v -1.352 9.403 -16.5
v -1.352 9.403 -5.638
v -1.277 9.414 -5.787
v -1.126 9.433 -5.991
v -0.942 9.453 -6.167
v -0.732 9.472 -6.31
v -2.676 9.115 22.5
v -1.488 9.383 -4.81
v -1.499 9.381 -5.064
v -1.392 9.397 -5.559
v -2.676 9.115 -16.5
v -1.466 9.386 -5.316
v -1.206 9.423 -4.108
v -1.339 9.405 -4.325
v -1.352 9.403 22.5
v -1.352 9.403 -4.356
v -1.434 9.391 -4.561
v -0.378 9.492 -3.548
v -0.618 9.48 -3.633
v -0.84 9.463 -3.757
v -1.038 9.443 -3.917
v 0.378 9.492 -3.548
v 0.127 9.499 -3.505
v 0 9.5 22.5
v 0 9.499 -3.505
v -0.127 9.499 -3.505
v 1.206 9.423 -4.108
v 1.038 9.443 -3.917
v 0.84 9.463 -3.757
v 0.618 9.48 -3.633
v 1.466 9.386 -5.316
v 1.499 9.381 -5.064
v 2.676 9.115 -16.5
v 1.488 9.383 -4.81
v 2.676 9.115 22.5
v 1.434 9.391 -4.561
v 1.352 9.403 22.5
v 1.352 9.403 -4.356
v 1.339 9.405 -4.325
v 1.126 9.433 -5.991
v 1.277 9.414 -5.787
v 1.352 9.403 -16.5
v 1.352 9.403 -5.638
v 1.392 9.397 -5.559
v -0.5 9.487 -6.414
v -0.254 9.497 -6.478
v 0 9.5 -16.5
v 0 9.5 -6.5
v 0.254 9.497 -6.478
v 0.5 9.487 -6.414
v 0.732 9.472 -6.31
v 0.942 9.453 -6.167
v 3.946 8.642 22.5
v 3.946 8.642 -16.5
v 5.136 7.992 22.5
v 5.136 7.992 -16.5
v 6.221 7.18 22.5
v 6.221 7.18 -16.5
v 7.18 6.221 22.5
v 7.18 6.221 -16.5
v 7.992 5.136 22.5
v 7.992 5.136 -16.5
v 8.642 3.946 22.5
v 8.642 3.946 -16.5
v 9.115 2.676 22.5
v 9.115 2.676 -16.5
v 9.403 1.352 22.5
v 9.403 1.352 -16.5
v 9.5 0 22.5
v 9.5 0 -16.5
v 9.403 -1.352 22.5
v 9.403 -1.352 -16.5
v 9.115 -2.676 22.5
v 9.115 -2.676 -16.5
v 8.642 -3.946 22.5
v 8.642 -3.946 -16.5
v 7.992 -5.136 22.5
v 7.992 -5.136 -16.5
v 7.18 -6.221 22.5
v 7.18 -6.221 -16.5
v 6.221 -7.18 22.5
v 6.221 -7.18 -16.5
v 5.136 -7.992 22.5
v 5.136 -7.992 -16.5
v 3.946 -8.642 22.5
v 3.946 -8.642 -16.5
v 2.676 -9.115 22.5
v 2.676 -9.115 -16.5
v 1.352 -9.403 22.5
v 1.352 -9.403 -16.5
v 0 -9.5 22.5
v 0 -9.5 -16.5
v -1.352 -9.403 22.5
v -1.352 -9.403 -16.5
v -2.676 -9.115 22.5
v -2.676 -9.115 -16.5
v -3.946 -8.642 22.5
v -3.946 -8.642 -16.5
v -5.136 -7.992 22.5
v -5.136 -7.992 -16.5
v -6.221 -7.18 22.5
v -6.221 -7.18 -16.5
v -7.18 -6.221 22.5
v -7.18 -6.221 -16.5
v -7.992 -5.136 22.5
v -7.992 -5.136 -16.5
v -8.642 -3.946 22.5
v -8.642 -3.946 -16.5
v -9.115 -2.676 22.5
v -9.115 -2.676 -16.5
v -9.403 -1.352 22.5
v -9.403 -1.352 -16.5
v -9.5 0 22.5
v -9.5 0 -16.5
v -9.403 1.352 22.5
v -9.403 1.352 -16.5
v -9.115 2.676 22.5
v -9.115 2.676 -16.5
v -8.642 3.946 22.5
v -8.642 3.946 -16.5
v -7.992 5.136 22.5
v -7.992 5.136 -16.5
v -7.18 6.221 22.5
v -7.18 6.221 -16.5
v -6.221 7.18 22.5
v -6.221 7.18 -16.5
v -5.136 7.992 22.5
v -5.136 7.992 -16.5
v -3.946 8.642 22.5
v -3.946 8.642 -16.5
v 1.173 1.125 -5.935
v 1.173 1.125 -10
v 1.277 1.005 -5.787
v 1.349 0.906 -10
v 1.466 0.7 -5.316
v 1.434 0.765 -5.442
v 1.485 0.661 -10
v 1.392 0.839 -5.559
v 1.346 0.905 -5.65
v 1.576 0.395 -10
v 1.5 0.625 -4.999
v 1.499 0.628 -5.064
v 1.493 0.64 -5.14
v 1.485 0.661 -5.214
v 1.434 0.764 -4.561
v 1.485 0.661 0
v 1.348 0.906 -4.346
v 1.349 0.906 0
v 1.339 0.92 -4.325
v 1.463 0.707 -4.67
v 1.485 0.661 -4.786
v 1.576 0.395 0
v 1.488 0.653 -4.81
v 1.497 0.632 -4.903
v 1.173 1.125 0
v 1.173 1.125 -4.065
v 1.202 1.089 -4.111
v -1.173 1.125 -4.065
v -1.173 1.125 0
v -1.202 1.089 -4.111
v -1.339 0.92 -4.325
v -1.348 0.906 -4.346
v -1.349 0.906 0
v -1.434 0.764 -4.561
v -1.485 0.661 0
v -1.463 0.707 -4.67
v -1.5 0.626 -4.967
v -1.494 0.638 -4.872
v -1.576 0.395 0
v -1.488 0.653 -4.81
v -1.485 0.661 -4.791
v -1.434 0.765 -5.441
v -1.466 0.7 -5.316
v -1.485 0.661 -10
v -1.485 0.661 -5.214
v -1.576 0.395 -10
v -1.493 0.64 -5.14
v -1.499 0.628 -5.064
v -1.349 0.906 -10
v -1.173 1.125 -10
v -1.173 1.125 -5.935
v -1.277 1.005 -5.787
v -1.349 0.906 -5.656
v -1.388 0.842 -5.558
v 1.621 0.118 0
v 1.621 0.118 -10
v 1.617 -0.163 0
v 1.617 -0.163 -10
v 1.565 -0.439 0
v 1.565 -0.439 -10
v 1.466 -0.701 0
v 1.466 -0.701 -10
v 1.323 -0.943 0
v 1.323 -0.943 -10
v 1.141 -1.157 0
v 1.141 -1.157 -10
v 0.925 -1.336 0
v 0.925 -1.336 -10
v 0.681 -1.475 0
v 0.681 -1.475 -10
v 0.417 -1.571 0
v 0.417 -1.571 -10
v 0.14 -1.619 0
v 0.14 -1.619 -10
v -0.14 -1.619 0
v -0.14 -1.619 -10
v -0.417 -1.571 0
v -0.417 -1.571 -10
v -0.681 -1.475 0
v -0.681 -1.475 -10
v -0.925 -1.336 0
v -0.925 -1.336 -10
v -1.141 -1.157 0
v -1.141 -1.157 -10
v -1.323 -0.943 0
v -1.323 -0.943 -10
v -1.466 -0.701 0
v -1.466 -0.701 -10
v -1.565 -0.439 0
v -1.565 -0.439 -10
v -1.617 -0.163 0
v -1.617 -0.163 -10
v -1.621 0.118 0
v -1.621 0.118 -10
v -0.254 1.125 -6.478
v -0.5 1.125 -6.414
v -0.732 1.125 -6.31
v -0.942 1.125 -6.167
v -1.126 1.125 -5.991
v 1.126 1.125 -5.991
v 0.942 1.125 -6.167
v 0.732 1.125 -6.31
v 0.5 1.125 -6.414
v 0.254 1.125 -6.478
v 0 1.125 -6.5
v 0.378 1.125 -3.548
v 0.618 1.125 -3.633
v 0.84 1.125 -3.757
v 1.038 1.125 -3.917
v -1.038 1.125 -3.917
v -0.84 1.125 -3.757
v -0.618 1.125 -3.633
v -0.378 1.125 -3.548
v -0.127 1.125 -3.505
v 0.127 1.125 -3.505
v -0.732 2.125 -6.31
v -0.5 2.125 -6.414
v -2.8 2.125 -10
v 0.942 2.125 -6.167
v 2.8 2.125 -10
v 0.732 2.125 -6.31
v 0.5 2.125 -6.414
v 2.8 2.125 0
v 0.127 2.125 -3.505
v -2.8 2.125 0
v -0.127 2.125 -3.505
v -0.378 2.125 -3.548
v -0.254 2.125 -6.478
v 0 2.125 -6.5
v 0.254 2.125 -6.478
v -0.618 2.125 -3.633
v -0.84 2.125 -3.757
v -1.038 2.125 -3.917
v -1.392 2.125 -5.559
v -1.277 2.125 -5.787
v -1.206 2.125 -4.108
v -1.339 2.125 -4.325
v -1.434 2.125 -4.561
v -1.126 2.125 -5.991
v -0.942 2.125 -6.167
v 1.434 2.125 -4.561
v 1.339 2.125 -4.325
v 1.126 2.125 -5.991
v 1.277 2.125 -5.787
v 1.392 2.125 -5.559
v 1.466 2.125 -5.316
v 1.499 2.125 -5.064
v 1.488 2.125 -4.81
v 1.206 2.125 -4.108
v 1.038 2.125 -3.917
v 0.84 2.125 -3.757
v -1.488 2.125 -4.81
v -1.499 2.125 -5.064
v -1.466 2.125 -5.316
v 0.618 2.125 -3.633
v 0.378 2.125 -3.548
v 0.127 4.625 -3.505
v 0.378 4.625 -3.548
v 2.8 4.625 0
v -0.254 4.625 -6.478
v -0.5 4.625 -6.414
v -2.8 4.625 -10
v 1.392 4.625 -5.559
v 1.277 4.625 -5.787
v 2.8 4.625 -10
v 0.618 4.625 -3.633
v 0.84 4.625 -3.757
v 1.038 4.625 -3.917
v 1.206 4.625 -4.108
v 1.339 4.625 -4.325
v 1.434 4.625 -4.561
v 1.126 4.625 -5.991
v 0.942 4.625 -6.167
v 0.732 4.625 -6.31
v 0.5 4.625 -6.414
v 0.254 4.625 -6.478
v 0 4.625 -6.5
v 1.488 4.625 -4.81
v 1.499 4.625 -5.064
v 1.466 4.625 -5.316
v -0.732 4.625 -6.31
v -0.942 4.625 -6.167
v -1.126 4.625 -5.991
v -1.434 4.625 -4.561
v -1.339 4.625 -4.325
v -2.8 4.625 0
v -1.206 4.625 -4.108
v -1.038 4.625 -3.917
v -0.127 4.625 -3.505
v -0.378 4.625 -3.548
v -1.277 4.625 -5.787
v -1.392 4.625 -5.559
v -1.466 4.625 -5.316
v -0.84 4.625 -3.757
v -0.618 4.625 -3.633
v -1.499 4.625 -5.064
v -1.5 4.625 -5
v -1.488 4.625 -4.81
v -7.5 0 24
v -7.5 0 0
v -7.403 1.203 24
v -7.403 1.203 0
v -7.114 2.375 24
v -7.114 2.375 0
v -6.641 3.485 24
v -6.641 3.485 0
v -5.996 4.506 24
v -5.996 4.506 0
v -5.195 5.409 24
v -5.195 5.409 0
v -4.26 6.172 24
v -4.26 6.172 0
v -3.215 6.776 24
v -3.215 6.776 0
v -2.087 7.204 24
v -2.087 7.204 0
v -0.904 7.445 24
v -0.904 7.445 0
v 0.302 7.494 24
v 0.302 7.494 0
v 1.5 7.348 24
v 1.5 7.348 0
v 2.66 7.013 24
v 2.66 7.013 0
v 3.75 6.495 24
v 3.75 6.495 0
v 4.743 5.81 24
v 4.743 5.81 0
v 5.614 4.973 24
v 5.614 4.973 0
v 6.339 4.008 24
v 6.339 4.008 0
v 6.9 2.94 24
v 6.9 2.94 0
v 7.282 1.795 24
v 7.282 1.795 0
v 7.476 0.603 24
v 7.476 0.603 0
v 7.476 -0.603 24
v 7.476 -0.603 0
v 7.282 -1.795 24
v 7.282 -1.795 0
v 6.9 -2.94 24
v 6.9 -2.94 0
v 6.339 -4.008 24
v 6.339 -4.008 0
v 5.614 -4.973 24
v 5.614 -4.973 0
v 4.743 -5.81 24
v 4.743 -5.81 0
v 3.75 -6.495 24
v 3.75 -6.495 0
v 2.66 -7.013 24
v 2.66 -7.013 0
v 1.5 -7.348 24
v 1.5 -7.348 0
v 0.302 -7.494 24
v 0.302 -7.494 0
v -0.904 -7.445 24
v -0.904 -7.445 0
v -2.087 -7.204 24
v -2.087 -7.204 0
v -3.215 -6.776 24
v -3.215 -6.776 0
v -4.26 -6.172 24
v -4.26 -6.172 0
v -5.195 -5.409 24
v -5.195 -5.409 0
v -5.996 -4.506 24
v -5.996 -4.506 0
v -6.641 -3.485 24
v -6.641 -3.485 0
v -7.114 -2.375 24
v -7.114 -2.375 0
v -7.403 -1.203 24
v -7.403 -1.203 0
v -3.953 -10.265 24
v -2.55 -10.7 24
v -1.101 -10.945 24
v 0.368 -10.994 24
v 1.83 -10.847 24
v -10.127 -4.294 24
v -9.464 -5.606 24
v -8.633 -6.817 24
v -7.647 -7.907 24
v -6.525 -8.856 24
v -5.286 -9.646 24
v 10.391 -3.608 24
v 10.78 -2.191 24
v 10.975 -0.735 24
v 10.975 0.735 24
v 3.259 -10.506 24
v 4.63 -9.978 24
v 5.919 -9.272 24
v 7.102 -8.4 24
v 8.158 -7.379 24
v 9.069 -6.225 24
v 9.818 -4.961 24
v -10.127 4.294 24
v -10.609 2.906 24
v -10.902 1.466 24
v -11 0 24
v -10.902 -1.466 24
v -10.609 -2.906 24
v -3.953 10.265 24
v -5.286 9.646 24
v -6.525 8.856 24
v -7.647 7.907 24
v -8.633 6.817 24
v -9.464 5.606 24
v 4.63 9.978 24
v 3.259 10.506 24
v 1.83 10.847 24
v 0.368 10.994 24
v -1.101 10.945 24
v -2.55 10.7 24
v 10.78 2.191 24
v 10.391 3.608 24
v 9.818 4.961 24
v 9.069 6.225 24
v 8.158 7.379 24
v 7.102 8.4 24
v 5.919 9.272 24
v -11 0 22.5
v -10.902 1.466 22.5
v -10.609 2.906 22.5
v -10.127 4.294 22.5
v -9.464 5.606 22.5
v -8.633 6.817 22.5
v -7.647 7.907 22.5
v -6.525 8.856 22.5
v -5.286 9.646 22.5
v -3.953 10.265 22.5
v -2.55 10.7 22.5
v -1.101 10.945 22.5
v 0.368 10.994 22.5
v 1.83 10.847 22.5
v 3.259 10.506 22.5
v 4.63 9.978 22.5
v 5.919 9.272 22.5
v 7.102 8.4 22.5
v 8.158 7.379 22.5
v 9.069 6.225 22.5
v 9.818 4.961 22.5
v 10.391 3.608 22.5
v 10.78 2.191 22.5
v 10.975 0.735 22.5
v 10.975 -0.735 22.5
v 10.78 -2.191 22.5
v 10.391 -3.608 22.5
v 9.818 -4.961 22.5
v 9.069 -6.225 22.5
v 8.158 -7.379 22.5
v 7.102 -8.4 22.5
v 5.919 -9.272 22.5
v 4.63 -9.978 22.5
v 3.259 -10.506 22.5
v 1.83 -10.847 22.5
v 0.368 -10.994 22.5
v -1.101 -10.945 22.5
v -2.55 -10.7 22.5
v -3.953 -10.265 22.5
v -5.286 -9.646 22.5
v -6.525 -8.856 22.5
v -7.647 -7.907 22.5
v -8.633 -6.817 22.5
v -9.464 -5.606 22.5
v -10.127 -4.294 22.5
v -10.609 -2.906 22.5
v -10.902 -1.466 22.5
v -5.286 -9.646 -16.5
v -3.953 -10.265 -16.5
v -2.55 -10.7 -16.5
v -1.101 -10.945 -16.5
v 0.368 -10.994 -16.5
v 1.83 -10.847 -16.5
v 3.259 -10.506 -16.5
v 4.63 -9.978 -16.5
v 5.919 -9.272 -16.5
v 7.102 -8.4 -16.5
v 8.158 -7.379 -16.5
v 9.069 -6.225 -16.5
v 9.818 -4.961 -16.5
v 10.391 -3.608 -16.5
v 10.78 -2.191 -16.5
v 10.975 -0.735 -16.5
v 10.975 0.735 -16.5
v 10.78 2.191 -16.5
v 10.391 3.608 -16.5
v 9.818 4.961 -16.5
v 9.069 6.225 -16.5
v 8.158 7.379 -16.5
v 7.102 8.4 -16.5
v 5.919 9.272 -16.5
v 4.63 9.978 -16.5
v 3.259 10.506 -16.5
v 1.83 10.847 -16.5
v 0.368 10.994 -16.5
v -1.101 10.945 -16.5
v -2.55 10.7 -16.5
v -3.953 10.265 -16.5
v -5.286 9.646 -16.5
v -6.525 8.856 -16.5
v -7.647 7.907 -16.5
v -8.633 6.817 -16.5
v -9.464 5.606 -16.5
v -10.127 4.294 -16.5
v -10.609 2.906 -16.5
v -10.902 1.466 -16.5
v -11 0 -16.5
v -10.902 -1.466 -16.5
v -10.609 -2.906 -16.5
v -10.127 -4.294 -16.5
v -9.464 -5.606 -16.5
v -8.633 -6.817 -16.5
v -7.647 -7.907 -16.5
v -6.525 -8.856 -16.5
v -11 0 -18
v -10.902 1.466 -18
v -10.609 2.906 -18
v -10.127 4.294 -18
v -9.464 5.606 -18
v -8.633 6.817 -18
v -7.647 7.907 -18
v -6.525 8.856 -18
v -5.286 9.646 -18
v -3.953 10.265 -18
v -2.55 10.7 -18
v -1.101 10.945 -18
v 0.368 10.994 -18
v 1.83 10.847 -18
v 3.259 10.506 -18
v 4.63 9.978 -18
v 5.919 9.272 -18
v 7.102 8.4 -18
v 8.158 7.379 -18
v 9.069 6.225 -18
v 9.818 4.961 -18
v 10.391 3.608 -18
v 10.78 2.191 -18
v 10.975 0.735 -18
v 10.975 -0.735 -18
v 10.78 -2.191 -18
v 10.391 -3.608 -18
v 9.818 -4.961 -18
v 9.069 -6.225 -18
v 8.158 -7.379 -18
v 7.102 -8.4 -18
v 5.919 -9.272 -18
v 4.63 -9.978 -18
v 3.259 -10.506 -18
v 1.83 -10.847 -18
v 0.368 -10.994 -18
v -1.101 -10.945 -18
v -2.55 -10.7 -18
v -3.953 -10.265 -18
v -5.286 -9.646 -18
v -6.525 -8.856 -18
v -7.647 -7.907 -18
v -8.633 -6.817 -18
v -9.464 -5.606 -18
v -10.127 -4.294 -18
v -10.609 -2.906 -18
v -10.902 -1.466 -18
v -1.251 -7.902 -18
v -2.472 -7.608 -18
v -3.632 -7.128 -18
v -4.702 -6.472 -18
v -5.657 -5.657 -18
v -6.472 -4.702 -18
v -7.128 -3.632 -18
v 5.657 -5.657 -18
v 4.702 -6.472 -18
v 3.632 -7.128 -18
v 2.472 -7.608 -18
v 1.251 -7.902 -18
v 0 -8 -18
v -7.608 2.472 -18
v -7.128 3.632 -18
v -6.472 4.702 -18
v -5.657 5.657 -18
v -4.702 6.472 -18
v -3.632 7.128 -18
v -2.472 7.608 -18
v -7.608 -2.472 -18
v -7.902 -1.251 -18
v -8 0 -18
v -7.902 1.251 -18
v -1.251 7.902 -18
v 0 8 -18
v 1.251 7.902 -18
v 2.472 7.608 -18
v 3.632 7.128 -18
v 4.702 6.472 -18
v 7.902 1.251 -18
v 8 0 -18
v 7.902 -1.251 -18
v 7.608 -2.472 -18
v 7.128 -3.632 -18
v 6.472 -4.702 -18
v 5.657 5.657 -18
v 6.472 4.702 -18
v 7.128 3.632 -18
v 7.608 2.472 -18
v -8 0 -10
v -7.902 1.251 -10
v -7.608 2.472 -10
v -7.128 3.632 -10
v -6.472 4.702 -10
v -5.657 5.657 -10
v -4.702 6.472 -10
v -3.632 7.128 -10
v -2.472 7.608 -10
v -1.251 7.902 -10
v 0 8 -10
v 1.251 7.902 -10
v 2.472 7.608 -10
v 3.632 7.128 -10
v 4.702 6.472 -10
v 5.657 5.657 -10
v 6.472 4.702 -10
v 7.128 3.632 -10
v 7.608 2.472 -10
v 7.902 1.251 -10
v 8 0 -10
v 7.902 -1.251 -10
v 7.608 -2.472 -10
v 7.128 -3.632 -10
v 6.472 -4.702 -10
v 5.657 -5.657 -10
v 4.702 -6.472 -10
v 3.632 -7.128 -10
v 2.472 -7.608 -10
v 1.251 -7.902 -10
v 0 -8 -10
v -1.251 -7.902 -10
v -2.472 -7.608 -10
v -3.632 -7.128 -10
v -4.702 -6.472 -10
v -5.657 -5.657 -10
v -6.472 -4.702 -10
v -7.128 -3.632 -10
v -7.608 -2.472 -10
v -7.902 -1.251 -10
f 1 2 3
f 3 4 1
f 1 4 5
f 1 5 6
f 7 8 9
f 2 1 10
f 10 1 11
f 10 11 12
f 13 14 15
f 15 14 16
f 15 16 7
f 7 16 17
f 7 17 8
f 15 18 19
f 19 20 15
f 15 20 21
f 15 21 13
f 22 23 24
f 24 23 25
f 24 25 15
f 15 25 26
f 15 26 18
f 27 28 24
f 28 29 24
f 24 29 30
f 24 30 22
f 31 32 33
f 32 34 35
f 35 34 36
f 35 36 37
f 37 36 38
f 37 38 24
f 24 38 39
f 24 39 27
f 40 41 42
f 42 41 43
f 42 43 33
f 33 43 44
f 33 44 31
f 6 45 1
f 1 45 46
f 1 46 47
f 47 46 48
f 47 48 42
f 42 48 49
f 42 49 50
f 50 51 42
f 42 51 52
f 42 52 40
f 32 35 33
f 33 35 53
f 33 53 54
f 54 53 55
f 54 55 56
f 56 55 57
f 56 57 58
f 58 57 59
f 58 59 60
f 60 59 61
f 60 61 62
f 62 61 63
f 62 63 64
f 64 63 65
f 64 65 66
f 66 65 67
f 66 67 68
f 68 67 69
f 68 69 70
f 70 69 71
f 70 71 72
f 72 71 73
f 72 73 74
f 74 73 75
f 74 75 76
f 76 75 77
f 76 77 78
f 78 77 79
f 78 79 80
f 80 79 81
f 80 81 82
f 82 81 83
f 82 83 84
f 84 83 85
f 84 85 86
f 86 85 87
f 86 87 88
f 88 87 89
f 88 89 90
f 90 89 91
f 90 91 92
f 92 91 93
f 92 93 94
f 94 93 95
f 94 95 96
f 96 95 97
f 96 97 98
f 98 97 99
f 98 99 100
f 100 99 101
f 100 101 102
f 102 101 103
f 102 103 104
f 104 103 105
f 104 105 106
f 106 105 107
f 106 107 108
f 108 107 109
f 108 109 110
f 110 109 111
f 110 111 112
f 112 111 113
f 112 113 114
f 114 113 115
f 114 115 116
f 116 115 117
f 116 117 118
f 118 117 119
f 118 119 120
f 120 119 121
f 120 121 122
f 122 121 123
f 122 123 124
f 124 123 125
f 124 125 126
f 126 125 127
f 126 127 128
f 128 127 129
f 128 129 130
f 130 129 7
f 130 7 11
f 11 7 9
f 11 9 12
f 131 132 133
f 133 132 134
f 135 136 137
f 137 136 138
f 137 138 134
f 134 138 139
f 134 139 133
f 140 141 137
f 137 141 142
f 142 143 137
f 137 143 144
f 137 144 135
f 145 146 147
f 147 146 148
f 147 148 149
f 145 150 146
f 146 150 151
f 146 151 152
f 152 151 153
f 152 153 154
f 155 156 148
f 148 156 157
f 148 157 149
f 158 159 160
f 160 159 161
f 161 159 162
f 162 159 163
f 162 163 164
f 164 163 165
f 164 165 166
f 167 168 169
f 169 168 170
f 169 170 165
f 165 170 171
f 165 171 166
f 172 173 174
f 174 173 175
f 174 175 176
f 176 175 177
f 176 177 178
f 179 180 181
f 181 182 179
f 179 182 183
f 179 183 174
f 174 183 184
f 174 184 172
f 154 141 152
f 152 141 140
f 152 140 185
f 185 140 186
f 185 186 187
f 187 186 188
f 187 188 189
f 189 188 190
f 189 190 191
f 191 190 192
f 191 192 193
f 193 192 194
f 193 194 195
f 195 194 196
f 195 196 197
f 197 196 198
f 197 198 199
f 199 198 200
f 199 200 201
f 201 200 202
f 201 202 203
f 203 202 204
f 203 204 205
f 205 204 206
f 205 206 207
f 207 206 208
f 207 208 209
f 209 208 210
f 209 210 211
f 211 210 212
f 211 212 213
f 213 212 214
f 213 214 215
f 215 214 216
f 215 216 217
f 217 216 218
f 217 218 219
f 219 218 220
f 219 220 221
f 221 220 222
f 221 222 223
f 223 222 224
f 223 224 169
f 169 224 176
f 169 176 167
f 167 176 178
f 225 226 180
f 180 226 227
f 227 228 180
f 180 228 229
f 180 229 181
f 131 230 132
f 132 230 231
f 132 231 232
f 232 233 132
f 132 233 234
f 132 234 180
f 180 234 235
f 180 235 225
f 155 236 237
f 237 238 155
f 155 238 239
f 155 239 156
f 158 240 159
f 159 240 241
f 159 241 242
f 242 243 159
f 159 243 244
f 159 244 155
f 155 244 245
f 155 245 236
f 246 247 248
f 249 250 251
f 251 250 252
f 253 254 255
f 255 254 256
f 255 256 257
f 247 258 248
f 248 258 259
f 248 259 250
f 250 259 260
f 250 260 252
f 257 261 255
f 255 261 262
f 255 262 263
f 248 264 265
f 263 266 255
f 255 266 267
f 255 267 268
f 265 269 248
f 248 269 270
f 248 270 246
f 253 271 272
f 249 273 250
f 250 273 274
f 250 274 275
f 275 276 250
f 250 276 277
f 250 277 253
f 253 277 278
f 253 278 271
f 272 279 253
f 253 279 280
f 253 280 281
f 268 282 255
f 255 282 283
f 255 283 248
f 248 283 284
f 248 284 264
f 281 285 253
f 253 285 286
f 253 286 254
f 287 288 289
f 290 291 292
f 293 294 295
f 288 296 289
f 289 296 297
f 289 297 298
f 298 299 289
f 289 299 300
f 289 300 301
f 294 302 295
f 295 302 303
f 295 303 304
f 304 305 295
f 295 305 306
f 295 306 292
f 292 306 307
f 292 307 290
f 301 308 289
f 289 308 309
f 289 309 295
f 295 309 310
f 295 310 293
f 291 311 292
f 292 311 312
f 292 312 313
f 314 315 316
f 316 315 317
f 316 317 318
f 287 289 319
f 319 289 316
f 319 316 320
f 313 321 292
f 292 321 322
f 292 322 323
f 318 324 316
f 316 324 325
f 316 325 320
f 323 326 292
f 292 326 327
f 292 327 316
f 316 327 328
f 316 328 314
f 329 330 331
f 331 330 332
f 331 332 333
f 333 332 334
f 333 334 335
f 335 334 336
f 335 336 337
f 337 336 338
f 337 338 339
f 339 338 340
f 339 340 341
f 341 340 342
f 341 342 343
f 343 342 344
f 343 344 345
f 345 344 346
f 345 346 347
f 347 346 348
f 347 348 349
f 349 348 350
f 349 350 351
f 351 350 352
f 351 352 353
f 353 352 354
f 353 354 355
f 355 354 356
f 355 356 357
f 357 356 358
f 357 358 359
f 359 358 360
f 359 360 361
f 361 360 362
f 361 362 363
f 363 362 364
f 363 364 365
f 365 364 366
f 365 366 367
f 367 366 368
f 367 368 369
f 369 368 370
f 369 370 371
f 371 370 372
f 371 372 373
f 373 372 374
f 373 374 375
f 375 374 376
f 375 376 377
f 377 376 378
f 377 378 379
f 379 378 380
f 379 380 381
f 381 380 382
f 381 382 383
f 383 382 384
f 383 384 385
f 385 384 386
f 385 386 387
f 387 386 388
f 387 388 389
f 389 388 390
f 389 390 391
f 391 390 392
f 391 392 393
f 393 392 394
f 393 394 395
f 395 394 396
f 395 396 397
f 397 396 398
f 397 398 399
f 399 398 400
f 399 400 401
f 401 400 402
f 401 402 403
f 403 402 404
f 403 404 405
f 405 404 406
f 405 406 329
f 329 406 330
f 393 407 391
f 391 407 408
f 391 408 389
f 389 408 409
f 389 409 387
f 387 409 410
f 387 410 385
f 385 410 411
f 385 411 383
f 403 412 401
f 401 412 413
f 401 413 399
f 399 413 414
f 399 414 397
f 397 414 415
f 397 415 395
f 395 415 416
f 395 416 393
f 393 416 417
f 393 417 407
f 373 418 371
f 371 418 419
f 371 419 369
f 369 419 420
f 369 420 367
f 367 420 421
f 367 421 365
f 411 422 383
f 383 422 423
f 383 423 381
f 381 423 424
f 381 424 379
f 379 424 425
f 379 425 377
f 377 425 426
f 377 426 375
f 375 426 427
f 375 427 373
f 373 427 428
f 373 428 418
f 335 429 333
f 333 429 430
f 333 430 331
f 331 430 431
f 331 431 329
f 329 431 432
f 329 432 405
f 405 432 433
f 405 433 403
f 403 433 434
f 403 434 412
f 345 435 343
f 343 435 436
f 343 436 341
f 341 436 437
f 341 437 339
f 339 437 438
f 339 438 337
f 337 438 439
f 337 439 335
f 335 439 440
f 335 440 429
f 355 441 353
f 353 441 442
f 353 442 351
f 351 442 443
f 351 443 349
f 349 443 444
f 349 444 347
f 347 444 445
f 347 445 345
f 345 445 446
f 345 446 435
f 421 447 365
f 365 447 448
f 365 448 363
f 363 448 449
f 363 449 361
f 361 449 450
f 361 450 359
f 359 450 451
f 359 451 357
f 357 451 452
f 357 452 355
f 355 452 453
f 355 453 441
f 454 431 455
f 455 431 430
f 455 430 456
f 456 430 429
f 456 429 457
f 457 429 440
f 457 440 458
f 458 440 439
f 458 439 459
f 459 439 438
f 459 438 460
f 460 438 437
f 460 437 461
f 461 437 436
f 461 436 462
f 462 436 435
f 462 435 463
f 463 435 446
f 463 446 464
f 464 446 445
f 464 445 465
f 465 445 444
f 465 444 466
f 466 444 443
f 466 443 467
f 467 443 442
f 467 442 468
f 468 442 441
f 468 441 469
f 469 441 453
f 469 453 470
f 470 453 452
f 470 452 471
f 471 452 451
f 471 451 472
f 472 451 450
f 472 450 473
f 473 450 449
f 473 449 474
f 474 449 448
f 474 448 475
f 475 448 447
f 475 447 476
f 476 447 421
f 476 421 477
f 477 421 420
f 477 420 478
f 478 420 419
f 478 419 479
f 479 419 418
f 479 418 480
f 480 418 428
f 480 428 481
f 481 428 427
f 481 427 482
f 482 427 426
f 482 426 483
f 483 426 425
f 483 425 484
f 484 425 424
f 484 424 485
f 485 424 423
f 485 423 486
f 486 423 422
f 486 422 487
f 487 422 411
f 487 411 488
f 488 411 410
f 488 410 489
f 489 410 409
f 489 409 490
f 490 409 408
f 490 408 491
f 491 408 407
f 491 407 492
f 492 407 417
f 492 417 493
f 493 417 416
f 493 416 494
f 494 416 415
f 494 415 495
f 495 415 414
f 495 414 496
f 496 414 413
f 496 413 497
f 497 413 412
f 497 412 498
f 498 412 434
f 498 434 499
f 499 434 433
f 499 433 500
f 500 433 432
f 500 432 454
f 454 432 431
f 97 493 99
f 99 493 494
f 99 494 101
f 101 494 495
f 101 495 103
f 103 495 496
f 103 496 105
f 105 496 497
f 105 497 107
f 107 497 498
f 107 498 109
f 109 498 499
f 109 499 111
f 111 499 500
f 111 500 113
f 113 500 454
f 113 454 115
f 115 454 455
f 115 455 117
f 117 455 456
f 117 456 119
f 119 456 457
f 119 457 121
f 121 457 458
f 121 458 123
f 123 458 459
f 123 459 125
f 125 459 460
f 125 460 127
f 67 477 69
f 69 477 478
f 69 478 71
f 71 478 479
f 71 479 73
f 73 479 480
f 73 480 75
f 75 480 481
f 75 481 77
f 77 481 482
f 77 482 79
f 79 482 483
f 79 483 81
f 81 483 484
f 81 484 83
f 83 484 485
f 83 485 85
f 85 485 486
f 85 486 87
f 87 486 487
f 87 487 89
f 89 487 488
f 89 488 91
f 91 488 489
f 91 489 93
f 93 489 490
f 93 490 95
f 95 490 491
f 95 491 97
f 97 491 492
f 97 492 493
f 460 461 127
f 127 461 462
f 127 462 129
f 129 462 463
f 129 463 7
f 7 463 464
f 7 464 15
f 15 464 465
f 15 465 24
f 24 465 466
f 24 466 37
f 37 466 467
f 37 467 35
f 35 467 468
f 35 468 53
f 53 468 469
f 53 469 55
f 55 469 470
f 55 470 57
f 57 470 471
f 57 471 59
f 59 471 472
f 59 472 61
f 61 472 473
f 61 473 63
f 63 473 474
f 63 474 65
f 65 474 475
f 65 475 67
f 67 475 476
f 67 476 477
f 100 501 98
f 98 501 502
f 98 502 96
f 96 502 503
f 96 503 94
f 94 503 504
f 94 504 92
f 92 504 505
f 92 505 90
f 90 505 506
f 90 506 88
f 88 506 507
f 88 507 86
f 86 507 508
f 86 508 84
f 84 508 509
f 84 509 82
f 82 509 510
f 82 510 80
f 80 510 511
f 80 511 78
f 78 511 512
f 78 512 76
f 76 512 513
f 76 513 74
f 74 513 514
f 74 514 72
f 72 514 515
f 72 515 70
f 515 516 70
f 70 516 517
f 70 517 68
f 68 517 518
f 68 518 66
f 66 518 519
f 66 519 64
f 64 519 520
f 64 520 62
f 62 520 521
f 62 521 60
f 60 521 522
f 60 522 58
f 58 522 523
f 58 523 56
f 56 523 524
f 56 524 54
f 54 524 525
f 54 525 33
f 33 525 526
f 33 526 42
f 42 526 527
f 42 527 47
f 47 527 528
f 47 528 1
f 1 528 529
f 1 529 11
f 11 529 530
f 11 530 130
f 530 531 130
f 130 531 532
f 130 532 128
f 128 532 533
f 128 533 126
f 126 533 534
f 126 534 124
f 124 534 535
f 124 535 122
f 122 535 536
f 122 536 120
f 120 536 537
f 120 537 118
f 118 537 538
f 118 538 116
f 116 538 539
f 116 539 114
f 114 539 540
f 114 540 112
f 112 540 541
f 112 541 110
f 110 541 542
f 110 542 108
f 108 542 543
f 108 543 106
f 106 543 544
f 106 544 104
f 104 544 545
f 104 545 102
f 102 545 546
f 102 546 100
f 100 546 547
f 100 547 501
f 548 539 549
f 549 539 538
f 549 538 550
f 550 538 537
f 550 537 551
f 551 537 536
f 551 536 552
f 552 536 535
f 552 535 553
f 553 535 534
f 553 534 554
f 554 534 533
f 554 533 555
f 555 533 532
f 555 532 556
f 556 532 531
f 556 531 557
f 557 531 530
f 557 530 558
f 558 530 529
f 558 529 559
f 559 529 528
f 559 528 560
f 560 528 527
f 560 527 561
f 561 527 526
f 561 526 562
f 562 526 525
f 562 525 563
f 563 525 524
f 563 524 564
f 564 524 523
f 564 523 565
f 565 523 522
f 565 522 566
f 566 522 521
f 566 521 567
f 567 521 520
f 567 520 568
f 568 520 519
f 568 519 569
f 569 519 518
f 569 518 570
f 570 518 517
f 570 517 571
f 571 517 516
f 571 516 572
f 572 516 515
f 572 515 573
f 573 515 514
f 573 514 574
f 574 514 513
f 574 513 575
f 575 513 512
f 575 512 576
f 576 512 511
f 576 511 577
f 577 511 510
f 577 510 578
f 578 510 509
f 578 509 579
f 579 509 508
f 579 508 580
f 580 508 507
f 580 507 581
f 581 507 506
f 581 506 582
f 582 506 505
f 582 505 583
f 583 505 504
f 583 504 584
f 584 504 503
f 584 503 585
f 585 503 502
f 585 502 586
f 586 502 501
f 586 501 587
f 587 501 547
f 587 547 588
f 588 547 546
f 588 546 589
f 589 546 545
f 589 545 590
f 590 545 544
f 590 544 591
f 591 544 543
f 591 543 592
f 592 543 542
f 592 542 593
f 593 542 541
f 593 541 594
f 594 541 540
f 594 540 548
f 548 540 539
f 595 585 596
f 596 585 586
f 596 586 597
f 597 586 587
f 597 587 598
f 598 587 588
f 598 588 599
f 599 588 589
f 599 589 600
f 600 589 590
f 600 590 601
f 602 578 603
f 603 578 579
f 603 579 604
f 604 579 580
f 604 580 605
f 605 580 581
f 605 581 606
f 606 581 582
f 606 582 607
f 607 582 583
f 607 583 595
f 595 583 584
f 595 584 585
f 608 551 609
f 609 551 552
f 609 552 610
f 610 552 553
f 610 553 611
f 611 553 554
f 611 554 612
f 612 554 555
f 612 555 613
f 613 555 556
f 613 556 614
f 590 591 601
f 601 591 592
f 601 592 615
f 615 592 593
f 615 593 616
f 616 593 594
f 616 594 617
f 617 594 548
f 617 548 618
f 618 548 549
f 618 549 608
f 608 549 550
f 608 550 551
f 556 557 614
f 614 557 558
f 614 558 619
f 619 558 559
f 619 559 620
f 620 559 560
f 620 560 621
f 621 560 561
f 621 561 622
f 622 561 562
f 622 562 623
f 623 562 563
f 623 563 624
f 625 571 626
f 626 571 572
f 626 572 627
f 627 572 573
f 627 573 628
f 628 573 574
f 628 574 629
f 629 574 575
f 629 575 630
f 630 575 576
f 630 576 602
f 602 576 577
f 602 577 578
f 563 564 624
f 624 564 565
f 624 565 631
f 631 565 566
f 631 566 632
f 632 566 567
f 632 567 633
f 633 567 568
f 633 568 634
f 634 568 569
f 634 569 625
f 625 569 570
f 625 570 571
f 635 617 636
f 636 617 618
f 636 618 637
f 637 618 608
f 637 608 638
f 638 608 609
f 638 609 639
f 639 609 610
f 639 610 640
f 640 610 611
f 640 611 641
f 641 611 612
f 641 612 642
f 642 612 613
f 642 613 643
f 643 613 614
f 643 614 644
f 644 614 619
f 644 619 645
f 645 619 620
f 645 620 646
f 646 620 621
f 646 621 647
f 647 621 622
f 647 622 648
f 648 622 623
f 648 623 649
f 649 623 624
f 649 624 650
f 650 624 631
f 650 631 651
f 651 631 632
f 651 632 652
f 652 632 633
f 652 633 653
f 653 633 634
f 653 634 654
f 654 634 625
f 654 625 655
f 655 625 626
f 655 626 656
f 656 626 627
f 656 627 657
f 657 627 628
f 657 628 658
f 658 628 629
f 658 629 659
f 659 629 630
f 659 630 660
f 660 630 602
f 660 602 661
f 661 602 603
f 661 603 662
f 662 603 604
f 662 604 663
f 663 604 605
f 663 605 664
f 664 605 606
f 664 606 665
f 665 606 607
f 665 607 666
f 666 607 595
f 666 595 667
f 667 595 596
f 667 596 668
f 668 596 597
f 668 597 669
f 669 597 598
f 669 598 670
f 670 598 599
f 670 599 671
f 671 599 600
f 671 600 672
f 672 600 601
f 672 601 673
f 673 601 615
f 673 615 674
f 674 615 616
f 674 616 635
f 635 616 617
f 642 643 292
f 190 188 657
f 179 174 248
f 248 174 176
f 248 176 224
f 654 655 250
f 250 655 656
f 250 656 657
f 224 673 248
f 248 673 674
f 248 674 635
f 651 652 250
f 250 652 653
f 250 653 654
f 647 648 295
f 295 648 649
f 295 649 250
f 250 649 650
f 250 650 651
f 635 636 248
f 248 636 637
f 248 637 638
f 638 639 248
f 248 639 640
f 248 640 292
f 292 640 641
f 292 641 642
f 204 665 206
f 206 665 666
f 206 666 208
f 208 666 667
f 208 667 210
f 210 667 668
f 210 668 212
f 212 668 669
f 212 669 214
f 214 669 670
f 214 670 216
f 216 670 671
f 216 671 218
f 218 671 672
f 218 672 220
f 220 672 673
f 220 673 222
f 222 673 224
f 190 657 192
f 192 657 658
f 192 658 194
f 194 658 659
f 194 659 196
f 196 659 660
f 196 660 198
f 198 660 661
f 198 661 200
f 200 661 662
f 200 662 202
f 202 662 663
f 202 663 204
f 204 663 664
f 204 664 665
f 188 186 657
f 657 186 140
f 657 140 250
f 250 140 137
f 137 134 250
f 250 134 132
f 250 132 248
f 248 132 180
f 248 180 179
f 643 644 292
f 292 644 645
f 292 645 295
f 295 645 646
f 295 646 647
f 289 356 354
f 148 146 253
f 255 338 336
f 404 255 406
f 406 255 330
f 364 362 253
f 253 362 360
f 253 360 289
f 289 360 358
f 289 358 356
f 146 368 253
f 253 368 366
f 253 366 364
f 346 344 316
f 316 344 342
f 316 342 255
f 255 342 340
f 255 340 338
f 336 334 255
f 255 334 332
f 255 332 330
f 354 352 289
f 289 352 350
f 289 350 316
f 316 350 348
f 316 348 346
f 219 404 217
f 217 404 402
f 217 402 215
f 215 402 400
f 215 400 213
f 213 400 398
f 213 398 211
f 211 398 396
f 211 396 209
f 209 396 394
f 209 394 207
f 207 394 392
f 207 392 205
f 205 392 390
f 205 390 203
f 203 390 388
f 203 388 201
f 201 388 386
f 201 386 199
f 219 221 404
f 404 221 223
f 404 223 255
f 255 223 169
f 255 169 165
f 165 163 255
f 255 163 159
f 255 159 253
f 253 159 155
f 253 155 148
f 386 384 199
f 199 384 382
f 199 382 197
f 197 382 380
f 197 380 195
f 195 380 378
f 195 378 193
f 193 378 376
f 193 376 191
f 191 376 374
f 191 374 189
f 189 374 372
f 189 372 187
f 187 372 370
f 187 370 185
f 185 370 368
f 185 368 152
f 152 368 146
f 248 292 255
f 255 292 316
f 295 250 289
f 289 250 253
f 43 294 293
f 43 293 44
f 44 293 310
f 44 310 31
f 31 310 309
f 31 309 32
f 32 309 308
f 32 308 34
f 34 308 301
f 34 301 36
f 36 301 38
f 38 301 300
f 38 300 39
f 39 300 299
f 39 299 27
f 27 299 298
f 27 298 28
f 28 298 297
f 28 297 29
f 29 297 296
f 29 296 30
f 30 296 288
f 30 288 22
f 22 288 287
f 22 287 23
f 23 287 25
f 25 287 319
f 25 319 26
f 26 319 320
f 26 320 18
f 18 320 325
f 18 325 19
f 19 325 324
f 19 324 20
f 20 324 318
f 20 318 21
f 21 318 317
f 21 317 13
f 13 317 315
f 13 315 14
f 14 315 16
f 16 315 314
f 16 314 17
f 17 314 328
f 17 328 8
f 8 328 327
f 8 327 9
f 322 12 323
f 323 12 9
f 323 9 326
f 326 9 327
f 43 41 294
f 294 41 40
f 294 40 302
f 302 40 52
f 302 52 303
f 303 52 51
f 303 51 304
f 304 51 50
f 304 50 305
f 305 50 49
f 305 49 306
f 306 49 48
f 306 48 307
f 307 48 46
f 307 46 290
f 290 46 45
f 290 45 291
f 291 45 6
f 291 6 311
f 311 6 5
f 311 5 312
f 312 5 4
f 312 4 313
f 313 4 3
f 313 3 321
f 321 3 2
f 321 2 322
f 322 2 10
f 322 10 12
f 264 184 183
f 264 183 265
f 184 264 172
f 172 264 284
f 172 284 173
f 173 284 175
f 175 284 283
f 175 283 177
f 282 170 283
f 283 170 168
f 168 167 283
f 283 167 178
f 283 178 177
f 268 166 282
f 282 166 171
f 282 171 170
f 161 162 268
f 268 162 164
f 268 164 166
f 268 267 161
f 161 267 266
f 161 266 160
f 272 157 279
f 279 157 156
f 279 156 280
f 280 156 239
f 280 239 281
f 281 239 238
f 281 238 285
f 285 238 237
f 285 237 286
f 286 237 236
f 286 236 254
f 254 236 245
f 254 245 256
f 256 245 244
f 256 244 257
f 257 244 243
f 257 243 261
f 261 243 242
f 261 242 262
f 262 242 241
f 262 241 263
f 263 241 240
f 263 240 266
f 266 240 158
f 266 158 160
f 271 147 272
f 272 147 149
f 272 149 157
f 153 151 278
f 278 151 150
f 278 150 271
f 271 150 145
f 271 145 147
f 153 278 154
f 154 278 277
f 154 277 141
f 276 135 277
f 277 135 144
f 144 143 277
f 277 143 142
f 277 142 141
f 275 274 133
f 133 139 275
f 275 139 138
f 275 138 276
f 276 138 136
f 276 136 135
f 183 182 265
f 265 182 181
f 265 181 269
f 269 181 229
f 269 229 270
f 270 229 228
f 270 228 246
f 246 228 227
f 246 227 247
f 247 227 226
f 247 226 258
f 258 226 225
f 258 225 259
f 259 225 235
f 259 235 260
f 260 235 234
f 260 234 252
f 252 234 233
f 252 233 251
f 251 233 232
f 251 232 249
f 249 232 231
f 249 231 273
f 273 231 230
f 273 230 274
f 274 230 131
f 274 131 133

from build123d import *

# Parameters (mm, degrees)
CORTAR_EXTRUIR1_DEPTH = 35
CROQUIS3_W            = 5.6
CROQUIS3_H            = 2.5
CORTAR_EXTRUIR2_DEPTH = 35
CROQUIS4_R            = 1.5
CORTAR_EXTRUIR3_DEPTH = 12


with BuildPart() as part:
    # Croquis1 → Revolución1 (revolve)
    with BuildSketch(Plane(origin=(0, 0, 0), x_dir=(0, 0, -1), z_dir=(1, 0, 0))):
        Polygon((-24, 7.5), (-24, 11), (-22.5, 11), (-22.5, 9.5), (16.5, 9.5), (16.5, 11), (18, 11), (18, 8), (10, 8), (10, 0), (0, 0), (0, 7.5), align=None)
    revolve(axis=Axis((0, 0, 0), (0, 0, 1)))

    # Croquis2 → Cortar-Extruir1 (cut, through all)
    with BuildSketch(Plane(origin=(0, 0, -10), x_dir=(-1, 0, 0), z_dir=(0, 0, -1))):
        with BuildLine():
            Line((-1.17260394, 1.125), (1.17260394, 1.125))
            ThreePointArc((1.17260394, 1.125), (0, -1.625), (-1.17260394, 1.125))
        make_face()
    extrude(amount=-CORTAR_EXTRUIR1_DEPTH, mode=Mode.SUBTRACT)

    # Croquis3 → Cortar-Extruir2 (cut, through all)
    with BuildSketch(Plane(origin=(0, 0, -10), x_dir=(-1, 0, 0), z_dir=(0, 0, -1))):
        with Locations((0, 3.375)):
            Rectangle(CROQUIS3_W, CROQUIS3_H)
    extrude(amount=-CORTAR_EXTRUIR2_DEPTH, mode=Mode.SUBTRACT)

    # Croquis4 → Cortar-Extruir3 (cut, through all)
    with BuildSketch(Plane(origin=(0, 0, 0), x_dir=(1, 0, 0), z_dir=(0, 1, 0))):
        with Locations((0, 5)):
            Circle(CROQUIS4_R)
    extrude(amount=CORTAR_EXTRUIR3_DEPTH, mode=Mode.SUBTRACT)


solid = part.part
